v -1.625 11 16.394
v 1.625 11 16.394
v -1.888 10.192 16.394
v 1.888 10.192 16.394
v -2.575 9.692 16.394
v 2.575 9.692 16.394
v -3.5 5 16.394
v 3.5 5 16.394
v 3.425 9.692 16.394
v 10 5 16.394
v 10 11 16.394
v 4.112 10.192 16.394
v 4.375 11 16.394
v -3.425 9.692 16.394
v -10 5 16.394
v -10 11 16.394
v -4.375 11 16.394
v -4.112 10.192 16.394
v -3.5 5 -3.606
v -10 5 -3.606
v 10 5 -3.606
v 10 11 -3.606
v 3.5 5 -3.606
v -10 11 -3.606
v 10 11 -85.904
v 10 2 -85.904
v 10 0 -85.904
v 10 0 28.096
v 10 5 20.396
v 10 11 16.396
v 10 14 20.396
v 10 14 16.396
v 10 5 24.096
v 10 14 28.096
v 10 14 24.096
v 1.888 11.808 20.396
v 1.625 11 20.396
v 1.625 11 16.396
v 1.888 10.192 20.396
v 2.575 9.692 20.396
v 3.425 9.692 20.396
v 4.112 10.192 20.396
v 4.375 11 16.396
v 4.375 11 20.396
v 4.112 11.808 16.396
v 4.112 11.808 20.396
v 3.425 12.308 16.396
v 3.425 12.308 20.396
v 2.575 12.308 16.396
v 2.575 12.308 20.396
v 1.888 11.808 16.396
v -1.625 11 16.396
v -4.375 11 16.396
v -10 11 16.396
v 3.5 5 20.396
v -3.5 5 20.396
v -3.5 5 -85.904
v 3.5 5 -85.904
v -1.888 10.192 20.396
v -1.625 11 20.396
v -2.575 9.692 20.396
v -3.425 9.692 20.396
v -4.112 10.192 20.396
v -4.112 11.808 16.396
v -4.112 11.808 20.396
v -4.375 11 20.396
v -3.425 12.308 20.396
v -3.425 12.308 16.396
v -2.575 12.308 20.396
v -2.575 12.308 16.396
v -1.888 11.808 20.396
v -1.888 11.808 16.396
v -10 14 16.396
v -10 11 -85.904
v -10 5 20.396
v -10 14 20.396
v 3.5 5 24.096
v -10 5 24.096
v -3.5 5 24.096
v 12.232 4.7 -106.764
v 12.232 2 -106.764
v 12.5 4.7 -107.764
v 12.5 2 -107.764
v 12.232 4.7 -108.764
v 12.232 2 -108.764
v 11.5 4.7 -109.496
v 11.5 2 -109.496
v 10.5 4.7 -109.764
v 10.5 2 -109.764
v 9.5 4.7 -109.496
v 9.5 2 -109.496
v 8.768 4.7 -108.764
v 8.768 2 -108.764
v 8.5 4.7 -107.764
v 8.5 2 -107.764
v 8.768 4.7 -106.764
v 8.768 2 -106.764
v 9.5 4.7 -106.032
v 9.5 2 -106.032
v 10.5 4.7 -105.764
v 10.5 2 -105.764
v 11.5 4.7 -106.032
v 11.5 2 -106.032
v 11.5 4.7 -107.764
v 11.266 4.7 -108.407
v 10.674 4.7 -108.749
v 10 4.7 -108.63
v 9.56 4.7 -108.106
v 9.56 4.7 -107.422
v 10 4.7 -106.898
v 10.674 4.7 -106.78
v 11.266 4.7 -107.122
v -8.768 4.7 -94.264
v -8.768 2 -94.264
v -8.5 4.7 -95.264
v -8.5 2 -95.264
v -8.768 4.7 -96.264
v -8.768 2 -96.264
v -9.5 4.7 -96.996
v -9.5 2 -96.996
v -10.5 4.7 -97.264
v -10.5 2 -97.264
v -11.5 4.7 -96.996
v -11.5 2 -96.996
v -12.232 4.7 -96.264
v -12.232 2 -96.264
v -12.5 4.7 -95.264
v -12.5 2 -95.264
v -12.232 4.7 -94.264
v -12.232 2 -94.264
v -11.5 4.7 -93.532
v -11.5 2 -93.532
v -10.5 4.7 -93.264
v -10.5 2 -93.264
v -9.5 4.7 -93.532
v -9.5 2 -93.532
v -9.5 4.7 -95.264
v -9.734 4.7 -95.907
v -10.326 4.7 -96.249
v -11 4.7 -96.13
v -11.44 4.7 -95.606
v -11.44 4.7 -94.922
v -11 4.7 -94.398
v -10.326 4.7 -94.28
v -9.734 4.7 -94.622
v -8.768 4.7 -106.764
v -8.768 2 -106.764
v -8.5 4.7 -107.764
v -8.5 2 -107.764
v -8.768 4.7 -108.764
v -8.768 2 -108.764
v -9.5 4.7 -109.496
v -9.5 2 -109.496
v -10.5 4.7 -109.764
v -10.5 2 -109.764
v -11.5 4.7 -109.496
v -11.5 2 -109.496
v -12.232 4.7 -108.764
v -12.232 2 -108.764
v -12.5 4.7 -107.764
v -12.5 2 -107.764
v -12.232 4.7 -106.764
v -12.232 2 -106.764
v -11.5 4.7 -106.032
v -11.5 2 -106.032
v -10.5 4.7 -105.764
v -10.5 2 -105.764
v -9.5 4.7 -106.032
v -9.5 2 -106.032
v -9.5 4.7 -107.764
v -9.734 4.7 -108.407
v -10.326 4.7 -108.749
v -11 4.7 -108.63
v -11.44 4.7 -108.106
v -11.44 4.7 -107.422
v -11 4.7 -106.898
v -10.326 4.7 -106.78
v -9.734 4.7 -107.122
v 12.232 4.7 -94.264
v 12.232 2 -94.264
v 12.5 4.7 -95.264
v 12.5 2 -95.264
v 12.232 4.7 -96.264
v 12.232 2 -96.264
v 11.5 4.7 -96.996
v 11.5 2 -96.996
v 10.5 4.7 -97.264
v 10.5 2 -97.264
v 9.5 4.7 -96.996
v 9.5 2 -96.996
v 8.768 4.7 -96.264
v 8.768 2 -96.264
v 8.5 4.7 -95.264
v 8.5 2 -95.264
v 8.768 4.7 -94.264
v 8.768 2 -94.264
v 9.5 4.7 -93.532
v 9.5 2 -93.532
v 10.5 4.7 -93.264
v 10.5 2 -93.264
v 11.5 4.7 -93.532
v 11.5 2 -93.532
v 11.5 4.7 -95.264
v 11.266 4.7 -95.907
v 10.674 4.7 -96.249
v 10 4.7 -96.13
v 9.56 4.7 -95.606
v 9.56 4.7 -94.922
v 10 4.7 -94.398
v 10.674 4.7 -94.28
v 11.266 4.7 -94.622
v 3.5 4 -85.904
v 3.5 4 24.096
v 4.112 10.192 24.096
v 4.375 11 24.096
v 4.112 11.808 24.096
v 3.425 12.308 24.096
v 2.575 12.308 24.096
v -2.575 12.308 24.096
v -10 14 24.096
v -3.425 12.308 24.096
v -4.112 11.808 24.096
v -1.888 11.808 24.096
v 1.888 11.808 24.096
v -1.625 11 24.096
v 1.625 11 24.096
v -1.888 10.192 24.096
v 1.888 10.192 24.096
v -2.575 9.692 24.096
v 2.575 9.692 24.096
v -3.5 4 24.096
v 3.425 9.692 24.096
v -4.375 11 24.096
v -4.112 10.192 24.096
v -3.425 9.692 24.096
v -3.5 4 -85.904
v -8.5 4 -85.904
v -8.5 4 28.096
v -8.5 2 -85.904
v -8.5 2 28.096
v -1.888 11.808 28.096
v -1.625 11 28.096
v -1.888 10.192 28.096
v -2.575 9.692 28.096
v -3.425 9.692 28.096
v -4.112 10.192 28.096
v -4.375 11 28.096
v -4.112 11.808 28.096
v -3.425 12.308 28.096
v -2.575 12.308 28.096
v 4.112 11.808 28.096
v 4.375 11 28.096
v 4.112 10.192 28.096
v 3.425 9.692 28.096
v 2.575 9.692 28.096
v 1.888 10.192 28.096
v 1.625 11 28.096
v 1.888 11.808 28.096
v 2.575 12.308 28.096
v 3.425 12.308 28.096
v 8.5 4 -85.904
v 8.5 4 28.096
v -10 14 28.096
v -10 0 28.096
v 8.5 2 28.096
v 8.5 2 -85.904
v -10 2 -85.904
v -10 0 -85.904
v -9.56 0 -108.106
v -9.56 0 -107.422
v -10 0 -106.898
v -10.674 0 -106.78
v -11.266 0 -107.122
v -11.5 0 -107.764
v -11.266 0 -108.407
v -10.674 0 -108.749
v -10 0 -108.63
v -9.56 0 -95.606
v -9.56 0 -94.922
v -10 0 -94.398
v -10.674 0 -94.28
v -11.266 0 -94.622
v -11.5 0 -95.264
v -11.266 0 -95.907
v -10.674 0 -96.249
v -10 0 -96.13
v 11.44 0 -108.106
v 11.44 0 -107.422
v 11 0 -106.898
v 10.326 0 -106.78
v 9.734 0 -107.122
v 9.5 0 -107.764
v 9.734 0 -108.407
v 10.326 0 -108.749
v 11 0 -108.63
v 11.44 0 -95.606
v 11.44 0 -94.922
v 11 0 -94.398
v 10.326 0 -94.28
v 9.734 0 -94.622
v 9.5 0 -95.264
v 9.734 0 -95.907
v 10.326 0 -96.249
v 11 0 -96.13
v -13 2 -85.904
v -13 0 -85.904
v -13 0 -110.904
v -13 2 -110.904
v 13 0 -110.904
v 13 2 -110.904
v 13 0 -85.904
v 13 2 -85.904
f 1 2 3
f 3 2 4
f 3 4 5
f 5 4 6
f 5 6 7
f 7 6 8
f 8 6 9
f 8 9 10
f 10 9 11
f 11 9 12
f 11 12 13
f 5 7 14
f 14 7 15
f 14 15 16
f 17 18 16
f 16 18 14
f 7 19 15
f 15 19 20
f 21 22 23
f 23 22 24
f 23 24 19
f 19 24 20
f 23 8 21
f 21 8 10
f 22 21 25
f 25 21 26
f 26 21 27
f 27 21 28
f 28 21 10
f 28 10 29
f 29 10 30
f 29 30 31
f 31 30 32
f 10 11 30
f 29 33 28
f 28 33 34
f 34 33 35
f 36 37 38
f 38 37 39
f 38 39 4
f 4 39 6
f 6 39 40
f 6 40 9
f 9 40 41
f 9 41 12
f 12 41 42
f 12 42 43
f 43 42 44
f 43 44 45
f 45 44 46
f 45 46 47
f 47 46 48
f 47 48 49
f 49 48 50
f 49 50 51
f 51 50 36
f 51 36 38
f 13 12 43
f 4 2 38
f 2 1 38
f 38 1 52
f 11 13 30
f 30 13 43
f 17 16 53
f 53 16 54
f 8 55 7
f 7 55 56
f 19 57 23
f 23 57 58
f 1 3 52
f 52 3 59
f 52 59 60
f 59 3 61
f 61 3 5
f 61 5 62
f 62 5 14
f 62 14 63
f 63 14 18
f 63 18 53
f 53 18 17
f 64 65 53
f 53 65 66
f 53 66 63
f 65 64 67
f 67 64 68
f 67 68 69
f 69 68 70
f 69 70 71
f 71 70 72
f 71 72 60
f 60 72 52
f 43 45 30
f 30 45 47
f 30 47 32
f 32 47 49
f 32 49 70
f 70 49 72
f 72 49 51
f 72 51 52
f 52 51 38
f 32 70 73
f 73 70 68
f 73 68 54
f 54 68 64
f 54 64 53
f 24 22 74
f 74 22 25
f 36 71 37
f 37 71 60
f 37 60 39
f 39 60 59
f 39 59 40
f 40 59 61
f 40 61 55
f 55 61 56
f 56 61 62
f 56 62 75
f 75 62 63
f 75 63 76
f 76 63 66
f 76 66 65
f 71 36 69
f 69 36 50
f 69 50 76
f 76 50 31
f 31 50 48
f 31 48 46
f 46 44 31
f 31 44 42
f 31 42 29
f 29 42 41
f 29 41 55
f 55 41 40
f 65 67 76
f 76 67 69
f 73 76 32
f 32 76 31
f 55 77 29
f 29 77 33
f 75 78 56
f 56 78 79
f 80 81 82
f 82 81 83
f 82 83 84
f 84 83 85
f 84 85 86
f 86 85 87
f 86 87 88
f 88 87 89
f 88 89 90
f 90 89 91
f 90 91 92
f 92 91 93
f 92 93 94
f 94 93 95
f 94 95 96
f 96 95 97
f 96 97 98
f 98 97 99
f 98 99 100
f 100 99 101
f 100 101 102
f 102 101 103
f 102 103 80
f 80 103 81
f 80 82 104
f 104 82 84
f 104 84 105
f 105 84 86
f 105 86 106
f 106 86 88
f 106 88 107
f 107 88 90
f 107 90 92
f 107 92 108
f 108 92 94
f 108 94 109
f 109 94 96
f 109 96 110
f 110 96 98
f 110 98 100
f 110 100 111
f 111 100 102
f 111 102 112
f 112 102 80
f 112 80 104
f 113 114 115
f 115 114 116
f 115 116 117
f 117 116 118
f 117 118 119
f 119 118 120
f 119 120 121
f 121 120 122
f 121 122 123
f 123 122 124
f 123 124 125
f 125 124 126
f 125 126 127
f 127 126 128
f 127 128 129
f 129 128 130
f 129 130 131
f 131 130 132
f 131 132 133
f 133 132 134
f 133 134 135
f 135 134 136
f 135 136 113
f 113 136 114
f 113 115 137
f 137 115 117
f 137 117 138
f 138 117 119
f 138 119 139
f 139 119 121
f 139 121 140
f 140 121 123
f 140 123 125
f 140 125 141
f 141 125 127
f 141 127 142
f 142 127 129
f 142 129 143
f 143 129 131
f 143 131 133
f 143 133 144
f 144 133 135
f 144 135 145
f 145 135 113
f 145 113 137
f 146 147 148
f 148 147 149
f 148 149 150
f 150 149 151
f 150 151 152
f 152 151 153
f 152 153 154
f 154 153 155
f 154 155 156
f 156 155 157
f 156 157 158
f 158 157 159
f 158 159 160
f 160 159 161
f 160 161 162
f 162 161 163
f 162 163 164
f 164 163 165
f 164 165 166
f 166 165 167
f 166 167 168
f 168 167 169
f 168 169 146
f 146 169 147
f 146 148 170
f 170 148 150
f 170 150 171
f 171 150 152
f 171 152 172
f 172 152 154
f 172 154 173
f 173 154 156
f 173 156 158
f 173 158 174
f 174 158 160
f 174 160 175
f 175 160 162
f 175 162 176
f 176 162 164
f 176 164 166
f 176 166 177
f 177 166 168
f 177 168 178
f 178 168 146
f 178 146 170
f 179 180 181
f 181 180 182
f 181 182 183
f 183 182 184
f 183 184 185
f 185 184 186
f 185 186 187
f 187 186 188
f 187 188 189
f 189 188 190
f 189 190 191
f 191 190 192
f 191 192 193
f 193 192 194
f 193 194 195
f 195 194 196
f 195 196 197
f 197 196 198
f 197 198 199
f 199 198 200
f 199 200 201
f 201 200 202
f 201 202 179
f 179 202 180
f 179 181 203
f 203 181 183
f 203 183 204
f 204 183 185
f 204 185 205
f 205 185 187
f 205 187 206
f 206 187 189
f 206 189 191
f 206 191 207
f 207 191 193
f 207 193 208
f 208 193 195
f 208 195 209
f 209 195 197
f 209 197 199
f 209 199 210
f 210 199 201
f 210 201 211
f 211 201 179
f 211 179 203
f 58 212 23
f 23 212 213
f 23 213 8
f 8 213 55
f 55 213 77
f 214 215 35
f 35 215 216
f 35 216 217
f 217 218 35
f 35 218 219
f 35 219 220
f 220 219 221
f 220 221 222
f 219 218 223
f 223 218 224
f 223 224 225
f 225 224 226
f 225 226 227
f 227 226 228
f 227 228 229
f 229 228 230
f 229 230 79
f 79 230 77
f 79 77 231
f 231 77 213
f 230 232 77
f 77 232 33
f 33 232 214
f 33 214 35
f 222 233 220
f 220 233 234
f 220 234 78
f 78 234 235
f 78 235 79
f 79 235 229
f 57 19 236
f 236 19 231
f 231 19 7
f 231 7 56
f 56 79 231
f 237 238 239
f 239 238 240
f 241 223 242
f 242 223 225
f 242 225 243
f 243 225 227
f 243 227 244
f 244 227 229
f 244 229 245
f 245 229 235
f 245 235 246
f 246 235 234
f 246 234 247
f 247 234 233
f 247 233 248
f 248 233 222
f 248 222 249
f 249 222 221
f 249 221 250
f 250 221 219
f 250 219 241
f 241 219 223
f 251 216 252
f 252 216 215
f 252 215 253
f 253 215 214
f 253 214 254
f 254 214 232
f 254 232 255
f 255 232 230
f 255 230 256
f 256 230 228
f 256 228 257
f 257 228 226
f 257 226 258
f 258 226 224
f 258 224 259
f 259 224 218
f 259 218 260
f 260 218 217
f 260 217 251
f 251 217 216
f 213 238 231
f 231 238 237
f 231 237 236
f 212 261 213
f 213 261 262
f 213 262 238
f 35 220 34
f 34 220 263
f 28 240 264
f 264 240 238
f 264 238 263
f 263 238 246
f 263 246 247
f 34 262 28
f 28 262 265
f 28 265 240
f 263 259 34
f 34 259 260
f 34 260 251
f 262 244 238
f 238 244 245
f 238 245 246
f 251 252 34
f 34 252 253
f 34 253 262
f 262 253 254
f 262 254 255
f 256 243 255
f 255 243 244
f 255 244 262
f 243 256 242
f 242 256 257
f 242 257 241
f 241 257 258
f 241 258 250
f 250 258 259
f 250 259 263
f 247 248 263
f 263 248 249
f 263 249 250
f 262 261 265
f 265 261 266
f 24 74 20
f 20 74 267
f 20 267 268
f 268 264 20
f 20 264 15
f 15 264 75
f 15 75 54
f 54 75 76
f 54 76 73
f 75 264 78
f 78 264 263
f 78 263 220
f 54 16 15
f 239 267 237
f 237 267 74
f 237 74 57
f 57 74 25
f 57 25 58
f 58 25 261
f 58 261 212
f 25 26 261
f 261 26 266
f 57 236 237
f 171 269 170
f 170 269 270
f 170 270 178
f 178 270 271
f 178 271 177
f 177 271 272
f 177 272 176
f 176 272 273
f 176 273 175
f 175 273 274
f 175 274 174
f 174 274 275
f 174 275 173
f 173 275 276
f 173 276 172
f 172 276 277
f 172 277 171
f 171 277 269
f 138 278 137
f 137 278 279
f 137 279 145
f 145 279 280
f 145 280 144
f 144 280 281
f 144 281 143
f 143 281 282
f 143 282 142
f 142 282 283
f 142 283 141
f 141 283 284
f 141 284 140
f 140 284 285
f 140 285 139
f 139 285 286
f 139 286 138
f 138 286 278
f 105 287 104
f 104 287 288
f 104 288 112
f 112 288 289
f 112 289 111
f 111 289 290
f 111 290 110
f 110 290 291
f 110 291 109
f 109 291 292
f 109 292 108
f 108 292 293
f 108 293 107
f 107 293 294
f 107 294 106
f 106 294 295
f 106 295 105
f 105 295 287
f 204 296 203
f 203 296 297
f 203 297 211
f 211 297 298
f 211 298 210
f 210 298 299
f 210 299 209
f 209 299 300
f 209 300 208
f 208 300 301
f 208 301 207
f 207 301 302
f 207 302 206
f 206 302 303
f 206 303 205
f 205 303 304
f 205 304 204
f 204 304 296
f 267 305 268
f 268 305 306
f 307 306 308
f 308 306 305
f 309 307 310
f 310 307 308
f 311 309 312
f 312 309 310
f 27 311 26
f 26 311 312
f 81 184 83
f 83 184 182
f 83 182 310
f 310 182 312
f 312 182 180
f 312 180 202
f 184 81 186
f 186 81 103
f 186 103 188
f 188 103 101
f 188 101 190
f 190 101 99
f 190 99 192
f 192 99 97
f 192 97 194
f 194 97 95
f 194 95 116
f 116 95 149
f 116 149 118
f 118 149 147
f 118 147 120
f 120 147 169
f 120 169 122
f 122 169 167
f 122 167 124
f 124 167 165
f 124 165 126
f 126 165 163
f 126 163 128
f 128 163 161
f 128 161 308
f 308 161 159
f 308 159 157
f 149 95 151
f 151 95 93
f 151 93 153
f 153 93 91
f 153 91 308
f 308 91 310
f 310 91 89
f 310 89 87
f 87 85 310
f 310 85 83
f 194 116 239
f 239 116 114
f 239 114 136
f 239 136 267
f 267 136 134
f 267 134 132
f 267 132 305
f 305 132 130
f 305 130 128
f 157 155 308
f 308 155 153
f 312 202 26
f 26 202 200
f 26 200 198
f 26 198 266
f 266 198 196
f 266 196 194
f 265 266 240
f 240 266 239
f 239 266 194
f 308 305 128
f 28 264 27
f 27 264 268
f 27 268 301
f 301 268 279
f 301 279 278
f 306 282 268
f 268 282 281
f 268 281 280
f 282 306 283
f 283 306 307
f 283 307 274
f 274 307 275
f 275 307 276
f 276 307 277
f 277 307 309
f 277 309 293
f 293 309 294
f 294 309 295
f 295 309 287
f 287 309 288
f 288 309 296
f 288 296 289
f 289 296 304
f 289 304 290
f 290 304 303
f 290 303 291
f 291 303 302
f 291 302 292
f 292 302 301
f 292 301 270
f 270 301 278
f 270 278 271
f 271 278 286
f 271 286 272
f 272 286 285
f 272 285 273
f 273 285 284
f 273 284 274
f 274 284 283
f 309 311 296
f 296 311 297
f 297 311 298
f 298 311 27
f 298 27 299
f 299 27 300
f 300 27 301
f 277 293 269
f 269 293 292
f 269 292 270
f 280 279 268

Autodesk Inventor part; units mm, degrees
ref_plane "YZ Plane" through (0, 0, 0) normal (1, 0, 0) x (0, 1, 0)
ref_plane "XZ Plane" through (0, 0, 0) normal (0, 1, 0) x (-1, 0, 0)
ref_plane "XY Plane" through (0, 0, 0) normal (0, 0, 1) x (1, 0, 0)
sketch "スケッチ1" plane through (0, 0, 0) normal (0, 1, 0) x (-1, 0, 0)
  line L0 (8.5, 24.0956) -> (-8.5, 24.0956)
  line L1 (-8.5, 24.0956) -> (-8.5, -85.9044)
  line L2 (-8.5, -85.9044) -> (8.5, -85.9044)
  line L3 (8.5, -85.9044) -> (8.5, 24.0956)
  line L4 (13, -85.9044) -> (-13, -85.9044)
  line L5 (-13, -85.9044) -> (-13, -110.9044)
  line L6 (-13, -110.9044) -> (13, -110.9044)
  line L7 (13, -110.9044) -> (13, -85.9044)
  circle A0 centre (10.5, -95.2644) radius 1
  circle A1 centre (10.5, -107.7644) radius 1
  line L8 (0, -85.9044) -> (0, -110.9044)
  line L9 (-8.5, -85.9044) -> (-8.5, 24.0956)
  circle A2 centre (-10.5, -95.2644) radius 1
  circle A3 centre (-10.5, -107.7644) radius 1
  line L10 (0, -85.9044) -> (0, 24.0956)
  line L11 (10, -85.9044) -> (10, 24.0956)
  line L12 (10, 24.0956) -> (8.5, 24.0956)
  line L13 (-8.5, -85.9044) -> (-8.5, 24.0956)
  line L14 (-10, -85.9044) -> (-10, 24.0956)
  line L15 (-10, 24.0956) -> (-8.5, 24.0956)
  line L16 (10, 24.0956) -> (-10, 24.0956)
  line L17 (8.5, 24.0956) -> (-8.5, 24.0956)
  line L18 (10, 24.0956) -> (-10, 24.0956)
  point P0 (0, 0)
  point P1 (-8.5, 24.0956)
  dimension "d0" = 17
  dimension "d1" = 110
  dimension "d2" = 26
  dimension "d3" = 25
  dimension "d4" = 4.5
  dimension "d5" = 2
  dimension "d6" = 9.36
  dimension "d7" = 2
  dimension "d8" = 12.5
  dimension "d9" = 2.5
  dimension "d10" = 2.5
  dimension "d11" = 13
  dimension "d12" = 1.5
extrude "押し出し1" add sketch "スケッチ1" along normal blind 2 contours L3 L2 L10 L0 | L10 L2 L1 L0 | L4 L7 L6 L8 L2 | L8 L6 L5 L4 L2
extrude "押し出し2" add sketch "スケッチ1" along normal blind 5 contours L12 L11 L4 L3 | L1 L4 L14 L15
sketch "スケッチ2" plane through (-8.5, 2, 24.0956) normal (1, 0, 0) x (0, 0, -1)
  line L0 (0, 0) -> (0, 3) projected
  line L1 (0, 3) -> (110, 3)
  line L2 (110, 3) -> (110, 2)
  line L3 (110, 2) -> (0, 2)
  line L4 (0, 2) -> (0, 3)
  point P0 (24.0956, -2)
  point P1 (0, 2)
  dimension "d27" = 110
  dimension "d28" = 1
sketch "スケッチ3" plane through (8.5, 2, -85.9044) normal (-1, 0, 0) x (0, 0, 1)
  line L0 (0, 3) -> (110, 3) projected
  line L1 (0, 3) -> (110, 3)
  line L2 (110, 3) -> (110, 2)
  line L3 (110, 2) -> (0, 2)
  line L4 (0, 2) -> (0, 3)
  point P0 (85.9044, -2)
  dimension "d29" = 110
  dimension "d30" = 1
sketch "スケッチ5" plane through (-10, 0, 24.0956) normal (0, 0, 1) x (1, 0, 0)
  line L0 (0, 0) -> (0, 2) projected
  line L1 (0, 0) -> (20, 0)
  line L2 (20, 0) -> (20, 14)
  line L3 (20, 14) -> (0, 14)
  line L4 (0, 14) -> (0, 0)
  line L5 (0, 2) -> (1.5, 2) projected
  line L6 (18.5, 4) -> (13.5, 4) projected
  line L7 (1.5, 2) -> (18.5, 2)
  line L8 (18.5, 2) -> (18.5, 4)
  line L9 (18.5, 4) -> (1.5, 4)
  line L10 (1.5, 4) -> (1.5, 2)
  circle A0 centre (7, 11) radius 1.375
  circle A1 centre (13, 11) radius 1.375
  point P0 (10, 0)
  point P1 (0, 2)
  dimension "d35" = 20
  dimension "d36" = 14
  dimension "d37" = 2.75
  dimension "d38" = 2.75
  dimension "d39" = 3
  dimension "d40" = 3
  dimension "d41" = 6
  dimension "d42" = 7
extrude "押し出し5" add sketch "スケッチ5" along normal blind 4
extrude "押し出し6" add sketch "スケッチ2" along normal blind 5
extrude "押し出し7" add sketch "スケッチ3" along normal blind 5
sketch "スケッチ6" plane through (-10, 0, 28.0956) normal (0, 0, 1) x (1, 0, 0)
  point P0 (10, 0)
sketch "スケッチ8" plane through (0, 2, 0) normal (0, 1, 0) x (1, 0, 0)
  circle A0 centre (10.5, 107.7644) radius 1 projected
  circle A1 centre (10.5, 107.7644) radius 2
  circle A2 centre (-10.5, 107.7644) radius 1 projected
  circle A3 centre (-10.5, 107.7644) radius 2
  circle A4 centre (-10.5, 95.2644) radius 1 projected
  circle A5 centre (-10.5, 95.2644) radius 2
  line L0 (13, 110.9044) -> (-13, 110.9044) projected
  line L1 (0, 110.9044) -> (0, 85.9044)
  circle A6 centre (10.5, 95.2644) radius 2
  circle A7 centre (10.5, 95.2644) radius 1
  point P0 (0, 0)
  dimension "d49" = 4
  dimension "d50" = 4
  dimension "d53" = 4
  dimension "d73" = 25
extrude "押し出し8" add sketch "スケッチ8" along normal blind 2.7
extrude "押し出し9" cut sketch "スケッチ1" along normal blind 4.8 contours A2
sketch "スケッチ9" plane through (0, 5, 0) normal (0, 1, 0) x (1, 0, 0)
  line L0 (-10, 85.9044) -> (-10, -24.0956) projected
  line L1 (10, -24.0956) -> (10, 85.9044) projected
  line L2 (-10, -20.3956) -> (10, -20.3956)
  line L3 (10, -20.3956) -> (10, -16.3956)
  line L4 (10, -16.3956) -> (-10, -16.3956)
  line L5 (-10, -16.3956) -> (-10, -20.3956)
  line L6 (10, -24.0956) -> (-10, -24.0956) projected
  point P0 (0, 0)
  point P1 (10, -20.3956)
  dimension "d57" = 3.7
  dimension "d58" = 4
extrude "押し出し10" add sketch "スケッチ9" along normal blind 9 contours L4 L1 L2 L0
sketch "スケッチ10" plane through (3.5, 5, 16.3956) normal (0, 0, -1) x (-1, 0, 0)
  line L0 (0, 0) -> (-6.5, 0) projected
  line L1 (-6.5, 0) -> (13.5, 0)
  line L2 (13.5, 0) -> (13.5, 6)
  line L3 (13.5, 6) -> (-6.5, 6)
  line L4 (-6.5, 6) -> (-6.5, 0)
  point P0 (3.5, -5)
  dimension "d63" = 20
  dimension "d64" = 6
extrude "押し出し12" add sketch "スケッチ10" along normal blind 102.3
extrude "押し出し13" add sketch "スケッチ10" along normal blind 102
extrude "押し出し11" cut sketch "スケッチ5" against normal blind 8 contours A0 | A1
sketch "スケッチ11" plane through (-4.375, 11, 16.3956) normal (0, 1, 0) x (1, 0, 0)
  line L0 (14.375, -11.7) -> (14.375, 102.3) projected
  line L1 (14.375, 0.0015) -> (-5.625, 0.0015)
  line L2 (-5.625, 0.0015) -> (-5.625, 20.0015)
  line L3 (-5.625, 20.0015) -> (14.375, 20.0015)
  line L4 (14.375, 20.0015) -> (14.375, 0.0015)
  point P0 (4.375, 16.3956)
  dimension "d69" = 20
  dimension "d70" = 20
extrude "押し出し14" cut sketch "スケッチ11" against normal blind 6
properties part number "MouthCameraBase"
